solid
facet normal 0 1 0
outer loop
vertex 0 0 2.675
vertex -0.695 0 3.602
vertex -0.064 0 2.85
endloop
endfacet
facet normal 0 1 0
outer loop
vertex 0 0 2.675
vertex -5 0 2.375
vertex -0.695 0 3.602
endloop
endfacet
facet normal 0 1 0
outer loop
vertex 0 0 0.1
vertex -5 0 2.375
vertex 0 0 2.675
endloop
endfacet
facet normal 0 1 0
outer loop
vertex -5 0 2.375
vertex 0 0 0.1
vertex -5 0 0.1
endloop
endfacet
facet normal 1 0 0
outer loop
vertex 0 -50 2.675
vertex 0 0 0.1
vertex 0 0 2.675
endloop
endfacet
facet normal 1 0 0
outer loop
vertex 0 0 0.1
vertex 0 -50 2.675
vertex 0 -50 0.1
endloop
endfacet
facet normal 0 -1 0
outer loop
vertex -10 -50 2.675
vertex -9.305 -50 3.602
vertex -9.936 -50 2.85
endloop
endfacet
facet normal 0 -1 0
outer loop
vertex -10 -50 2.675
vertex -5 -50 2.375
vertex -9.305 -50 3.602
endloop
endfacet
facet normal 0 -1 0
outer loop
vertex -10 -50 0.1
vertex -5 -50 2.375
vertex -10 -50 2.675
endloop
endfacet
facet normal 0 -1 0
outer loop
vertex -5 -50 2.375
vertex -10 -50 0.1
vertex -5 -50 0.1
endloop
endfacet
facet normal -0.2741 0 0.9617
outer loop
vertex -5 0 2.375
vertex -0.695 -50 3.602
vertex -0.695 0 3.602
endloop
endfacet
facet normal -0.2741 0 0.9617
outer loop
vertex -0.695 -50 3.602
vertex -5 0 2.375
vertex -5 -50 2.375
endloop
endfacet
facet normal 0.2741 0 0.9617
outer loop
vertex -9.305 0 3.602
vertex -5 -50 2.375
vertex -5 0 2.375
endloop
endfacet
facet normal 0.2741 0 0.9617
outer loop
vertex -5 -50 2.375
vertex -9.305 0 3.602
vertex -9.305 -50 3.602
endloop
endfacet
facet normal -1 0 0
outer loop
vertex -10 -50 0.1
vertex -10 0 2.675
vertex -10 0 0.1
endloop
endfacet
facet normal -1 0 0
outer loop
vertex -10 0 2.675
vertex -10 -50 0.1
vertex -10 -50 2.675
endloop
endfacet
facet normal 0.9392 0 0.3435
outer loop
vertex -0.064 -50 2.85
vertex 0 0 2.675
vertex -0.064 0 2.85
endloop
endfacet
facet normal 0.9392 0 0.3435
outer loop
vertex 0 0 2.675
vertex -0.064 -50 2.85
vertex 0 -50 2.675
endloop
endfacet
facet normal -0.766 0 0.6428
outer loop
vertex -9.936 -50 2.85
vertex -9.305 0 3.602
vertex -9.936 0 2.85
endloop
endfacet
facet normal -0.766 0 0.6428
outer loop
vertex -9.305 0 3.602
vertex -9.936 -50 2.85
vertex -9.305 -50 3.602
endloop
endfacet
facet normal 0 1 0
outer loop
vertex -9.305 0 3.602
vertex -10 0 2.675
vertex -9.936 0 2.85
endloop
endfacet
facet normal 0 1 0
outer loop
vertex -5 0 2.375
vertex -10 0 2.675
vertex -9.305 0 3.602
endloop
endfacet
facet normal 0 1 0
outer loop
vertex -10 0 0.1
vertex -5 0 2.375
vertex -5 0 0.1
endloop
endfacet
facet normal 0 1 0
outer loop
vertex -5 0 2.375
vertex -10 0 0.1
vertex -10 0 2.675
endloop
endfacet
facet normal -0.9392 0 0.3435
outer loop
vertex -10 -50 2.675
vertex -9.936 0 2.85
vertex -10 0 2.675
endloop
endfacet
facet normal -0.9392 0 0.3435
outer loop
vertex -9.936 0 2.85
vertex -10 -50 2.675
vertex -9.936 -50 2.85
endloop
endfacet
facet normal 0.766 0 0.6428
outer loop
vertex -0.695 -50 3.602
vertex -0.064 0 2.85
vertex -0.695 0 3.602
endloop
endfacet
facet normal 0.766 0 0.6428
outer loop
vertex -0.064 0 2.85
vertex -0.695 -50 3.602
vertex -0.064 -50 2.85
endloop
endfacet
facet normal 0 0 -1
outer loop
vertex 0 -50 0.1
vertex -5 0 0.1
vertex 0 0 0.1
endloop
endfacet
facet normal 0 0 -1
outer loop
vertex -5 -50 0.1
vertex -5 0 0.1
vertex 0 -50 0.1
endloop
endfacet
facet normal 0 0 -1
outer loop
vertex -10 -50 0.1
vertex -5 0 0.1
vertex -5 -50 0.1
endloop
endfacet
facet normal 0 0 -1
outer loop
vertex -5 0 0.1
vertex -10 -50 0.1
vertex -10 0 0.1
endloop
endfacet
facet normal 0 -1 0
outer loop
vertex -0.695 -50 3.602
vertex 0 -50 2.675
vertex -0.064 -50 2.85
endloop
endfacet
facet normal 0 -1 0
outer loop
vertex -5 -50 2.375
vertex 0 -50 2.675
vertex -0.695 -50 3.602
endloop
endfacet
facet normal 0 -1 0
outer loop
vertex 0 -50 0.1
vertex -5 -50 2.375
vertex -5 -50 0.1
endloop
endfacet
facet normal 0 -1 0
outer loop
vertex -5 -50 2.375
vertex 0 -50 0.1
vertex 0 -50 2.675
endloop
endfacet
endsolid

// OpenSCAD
// file: long_bow_tie.scad
length = 50;
tilt_level = 1.1;
scaling_x = .95;
scaling_y = 1;
scaling_z = 1;

include <include.scad>;
include <globals.scad>;

obj_leg = 12;

module bow_tie_master(lngth=length){
	union(){
		mirror([0,1,0])	male_dovetail(height=lngth);
		male_dovetail(height=lngth);
	}
}

module long_bow_tie (lngth=length, scale_x=scaling_x, scale_y=scaling_y, scale_z=scaling_z ) {
    translate([0,0,scale_z*5]) intersection(){
        scale([scale_x,scale_y,scale_z]) rotate([90,0,0]) bow_tie_master(lngth);
        rotate([90,0,0]) cylinder(r=5.7, h=200);
    }
}

long_bow_tie();
// file: globals.scad
/*
Most things in this file is represented as one millimeter, so keep that in mind while changing things.
Some of the setting are not mm but at variables that you can set, such as 2*x=2x and you are setting what x is.
I will try to specify when things are variables and not exact measurements.
*/

// printer slop
slop = 0.15;

obj_leg = 30;
leg_length = 5.5;
small_number = 0.001;
metal_core_rode_global = 5;


///////////////// number of holes /////////////////////
z_hole_number = 8;
other_holes = 8;

///////////////// Pins /////////////////////

//pins that poke out
ball_size = 10;
pin_height = 20;
pin_diameter = 6;


//holes
hole_ball_size = ball_size;
hole_pin_height = pin_height;
hole_pin_diameter = pin_diameter;

///////////////// Z THINGS /////////////////////

berring_slot_width = 7.5;
berring_slot_depth = 6.5;
metal_core_rode = 5;

///////////////// X THINGS /////////////////////

//male dove tails
male_dove_max_width=8;
male_dove_min_width=5;
male_dove_depth=5;
male_dove_height=obj_leg/2;

function scaled_male_dove_max_width() = male_dove_max_width - slop;
function scaled_male_dove_min_width() = male_dove_min_width - slop;
function scaled_male_dove_depth() = male_dove_depth - slop;

//female dove tails, this is found on the y mounts
girl_max_width=11;
girl_min_width=5;
girl_depth=5;
girl_height=obj_leg;


///////////////// Y THINGS /////////////////////
/*
The Y is so normal that all of those global variables at the top should change all of the setting in it, this section is set her incase there are variables set in the future development of this project.
*/

// stepper
motor_side_length = 43.2;
motor_bolt_hole_distance = 31;
motor_center_hole = 23;
motor_shaft_dia = 5;
motor_shaft_hole_dia = 5+2*slop;

// bolts etc.
bolt_hole_dia = 3+2*slop;
bolt_head_hole_dia = 5.8;

m4_bolt_hole_dia = 4+2*slop;
m4_bolt_head_hole_dia = 6.8+2*slop;


m3_nut_side = 5.65;
m3_nut_height = 2.3;
m4_nut_side = 6.85;
m4_nut_height = 3.1;

// threaded rod
lifter_rod_diam = 9.86;
hole_threaded_rod = lifter_rod_diam+2*slop;

// for the extensions
metal_rod_size = 9;
// main file
length = 50;
include <include.scad>;
include <globals.scad>;
use <long_bow_tie.scad>;

module long_bow_tie_half() {
    intersection() {
        long_bow_tie();
        #translate([0.1,-length,-1]) cube([6, length, 12]);
    }
}

rotate ([0,-90,0]) long_bow_tie_half();
